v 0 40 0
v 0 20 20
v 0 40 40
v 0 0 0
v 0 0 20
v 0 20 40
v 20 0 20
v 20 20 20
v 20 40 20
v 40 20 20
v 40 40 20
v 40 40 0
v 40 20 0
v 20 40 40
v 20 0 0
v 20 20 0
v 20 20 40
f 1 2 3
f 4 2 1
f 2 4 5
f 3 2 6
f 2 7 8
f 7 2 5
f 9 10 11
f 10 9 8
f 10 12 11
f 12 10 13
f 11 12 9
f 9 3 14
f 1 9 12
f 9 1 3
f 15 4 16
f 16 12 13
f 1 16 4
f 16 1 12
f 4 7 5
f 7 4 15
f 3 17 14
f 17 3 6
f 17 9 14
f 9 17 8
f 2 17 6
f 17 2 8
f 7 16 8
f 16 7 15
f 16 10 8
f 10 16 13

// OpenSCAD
difference(){
union(){
cube([40,40,20]);
translate([0,20,0])
cube([20,20,40]);
}
translate([20,0,0])
cube([20,20,40]);
}
